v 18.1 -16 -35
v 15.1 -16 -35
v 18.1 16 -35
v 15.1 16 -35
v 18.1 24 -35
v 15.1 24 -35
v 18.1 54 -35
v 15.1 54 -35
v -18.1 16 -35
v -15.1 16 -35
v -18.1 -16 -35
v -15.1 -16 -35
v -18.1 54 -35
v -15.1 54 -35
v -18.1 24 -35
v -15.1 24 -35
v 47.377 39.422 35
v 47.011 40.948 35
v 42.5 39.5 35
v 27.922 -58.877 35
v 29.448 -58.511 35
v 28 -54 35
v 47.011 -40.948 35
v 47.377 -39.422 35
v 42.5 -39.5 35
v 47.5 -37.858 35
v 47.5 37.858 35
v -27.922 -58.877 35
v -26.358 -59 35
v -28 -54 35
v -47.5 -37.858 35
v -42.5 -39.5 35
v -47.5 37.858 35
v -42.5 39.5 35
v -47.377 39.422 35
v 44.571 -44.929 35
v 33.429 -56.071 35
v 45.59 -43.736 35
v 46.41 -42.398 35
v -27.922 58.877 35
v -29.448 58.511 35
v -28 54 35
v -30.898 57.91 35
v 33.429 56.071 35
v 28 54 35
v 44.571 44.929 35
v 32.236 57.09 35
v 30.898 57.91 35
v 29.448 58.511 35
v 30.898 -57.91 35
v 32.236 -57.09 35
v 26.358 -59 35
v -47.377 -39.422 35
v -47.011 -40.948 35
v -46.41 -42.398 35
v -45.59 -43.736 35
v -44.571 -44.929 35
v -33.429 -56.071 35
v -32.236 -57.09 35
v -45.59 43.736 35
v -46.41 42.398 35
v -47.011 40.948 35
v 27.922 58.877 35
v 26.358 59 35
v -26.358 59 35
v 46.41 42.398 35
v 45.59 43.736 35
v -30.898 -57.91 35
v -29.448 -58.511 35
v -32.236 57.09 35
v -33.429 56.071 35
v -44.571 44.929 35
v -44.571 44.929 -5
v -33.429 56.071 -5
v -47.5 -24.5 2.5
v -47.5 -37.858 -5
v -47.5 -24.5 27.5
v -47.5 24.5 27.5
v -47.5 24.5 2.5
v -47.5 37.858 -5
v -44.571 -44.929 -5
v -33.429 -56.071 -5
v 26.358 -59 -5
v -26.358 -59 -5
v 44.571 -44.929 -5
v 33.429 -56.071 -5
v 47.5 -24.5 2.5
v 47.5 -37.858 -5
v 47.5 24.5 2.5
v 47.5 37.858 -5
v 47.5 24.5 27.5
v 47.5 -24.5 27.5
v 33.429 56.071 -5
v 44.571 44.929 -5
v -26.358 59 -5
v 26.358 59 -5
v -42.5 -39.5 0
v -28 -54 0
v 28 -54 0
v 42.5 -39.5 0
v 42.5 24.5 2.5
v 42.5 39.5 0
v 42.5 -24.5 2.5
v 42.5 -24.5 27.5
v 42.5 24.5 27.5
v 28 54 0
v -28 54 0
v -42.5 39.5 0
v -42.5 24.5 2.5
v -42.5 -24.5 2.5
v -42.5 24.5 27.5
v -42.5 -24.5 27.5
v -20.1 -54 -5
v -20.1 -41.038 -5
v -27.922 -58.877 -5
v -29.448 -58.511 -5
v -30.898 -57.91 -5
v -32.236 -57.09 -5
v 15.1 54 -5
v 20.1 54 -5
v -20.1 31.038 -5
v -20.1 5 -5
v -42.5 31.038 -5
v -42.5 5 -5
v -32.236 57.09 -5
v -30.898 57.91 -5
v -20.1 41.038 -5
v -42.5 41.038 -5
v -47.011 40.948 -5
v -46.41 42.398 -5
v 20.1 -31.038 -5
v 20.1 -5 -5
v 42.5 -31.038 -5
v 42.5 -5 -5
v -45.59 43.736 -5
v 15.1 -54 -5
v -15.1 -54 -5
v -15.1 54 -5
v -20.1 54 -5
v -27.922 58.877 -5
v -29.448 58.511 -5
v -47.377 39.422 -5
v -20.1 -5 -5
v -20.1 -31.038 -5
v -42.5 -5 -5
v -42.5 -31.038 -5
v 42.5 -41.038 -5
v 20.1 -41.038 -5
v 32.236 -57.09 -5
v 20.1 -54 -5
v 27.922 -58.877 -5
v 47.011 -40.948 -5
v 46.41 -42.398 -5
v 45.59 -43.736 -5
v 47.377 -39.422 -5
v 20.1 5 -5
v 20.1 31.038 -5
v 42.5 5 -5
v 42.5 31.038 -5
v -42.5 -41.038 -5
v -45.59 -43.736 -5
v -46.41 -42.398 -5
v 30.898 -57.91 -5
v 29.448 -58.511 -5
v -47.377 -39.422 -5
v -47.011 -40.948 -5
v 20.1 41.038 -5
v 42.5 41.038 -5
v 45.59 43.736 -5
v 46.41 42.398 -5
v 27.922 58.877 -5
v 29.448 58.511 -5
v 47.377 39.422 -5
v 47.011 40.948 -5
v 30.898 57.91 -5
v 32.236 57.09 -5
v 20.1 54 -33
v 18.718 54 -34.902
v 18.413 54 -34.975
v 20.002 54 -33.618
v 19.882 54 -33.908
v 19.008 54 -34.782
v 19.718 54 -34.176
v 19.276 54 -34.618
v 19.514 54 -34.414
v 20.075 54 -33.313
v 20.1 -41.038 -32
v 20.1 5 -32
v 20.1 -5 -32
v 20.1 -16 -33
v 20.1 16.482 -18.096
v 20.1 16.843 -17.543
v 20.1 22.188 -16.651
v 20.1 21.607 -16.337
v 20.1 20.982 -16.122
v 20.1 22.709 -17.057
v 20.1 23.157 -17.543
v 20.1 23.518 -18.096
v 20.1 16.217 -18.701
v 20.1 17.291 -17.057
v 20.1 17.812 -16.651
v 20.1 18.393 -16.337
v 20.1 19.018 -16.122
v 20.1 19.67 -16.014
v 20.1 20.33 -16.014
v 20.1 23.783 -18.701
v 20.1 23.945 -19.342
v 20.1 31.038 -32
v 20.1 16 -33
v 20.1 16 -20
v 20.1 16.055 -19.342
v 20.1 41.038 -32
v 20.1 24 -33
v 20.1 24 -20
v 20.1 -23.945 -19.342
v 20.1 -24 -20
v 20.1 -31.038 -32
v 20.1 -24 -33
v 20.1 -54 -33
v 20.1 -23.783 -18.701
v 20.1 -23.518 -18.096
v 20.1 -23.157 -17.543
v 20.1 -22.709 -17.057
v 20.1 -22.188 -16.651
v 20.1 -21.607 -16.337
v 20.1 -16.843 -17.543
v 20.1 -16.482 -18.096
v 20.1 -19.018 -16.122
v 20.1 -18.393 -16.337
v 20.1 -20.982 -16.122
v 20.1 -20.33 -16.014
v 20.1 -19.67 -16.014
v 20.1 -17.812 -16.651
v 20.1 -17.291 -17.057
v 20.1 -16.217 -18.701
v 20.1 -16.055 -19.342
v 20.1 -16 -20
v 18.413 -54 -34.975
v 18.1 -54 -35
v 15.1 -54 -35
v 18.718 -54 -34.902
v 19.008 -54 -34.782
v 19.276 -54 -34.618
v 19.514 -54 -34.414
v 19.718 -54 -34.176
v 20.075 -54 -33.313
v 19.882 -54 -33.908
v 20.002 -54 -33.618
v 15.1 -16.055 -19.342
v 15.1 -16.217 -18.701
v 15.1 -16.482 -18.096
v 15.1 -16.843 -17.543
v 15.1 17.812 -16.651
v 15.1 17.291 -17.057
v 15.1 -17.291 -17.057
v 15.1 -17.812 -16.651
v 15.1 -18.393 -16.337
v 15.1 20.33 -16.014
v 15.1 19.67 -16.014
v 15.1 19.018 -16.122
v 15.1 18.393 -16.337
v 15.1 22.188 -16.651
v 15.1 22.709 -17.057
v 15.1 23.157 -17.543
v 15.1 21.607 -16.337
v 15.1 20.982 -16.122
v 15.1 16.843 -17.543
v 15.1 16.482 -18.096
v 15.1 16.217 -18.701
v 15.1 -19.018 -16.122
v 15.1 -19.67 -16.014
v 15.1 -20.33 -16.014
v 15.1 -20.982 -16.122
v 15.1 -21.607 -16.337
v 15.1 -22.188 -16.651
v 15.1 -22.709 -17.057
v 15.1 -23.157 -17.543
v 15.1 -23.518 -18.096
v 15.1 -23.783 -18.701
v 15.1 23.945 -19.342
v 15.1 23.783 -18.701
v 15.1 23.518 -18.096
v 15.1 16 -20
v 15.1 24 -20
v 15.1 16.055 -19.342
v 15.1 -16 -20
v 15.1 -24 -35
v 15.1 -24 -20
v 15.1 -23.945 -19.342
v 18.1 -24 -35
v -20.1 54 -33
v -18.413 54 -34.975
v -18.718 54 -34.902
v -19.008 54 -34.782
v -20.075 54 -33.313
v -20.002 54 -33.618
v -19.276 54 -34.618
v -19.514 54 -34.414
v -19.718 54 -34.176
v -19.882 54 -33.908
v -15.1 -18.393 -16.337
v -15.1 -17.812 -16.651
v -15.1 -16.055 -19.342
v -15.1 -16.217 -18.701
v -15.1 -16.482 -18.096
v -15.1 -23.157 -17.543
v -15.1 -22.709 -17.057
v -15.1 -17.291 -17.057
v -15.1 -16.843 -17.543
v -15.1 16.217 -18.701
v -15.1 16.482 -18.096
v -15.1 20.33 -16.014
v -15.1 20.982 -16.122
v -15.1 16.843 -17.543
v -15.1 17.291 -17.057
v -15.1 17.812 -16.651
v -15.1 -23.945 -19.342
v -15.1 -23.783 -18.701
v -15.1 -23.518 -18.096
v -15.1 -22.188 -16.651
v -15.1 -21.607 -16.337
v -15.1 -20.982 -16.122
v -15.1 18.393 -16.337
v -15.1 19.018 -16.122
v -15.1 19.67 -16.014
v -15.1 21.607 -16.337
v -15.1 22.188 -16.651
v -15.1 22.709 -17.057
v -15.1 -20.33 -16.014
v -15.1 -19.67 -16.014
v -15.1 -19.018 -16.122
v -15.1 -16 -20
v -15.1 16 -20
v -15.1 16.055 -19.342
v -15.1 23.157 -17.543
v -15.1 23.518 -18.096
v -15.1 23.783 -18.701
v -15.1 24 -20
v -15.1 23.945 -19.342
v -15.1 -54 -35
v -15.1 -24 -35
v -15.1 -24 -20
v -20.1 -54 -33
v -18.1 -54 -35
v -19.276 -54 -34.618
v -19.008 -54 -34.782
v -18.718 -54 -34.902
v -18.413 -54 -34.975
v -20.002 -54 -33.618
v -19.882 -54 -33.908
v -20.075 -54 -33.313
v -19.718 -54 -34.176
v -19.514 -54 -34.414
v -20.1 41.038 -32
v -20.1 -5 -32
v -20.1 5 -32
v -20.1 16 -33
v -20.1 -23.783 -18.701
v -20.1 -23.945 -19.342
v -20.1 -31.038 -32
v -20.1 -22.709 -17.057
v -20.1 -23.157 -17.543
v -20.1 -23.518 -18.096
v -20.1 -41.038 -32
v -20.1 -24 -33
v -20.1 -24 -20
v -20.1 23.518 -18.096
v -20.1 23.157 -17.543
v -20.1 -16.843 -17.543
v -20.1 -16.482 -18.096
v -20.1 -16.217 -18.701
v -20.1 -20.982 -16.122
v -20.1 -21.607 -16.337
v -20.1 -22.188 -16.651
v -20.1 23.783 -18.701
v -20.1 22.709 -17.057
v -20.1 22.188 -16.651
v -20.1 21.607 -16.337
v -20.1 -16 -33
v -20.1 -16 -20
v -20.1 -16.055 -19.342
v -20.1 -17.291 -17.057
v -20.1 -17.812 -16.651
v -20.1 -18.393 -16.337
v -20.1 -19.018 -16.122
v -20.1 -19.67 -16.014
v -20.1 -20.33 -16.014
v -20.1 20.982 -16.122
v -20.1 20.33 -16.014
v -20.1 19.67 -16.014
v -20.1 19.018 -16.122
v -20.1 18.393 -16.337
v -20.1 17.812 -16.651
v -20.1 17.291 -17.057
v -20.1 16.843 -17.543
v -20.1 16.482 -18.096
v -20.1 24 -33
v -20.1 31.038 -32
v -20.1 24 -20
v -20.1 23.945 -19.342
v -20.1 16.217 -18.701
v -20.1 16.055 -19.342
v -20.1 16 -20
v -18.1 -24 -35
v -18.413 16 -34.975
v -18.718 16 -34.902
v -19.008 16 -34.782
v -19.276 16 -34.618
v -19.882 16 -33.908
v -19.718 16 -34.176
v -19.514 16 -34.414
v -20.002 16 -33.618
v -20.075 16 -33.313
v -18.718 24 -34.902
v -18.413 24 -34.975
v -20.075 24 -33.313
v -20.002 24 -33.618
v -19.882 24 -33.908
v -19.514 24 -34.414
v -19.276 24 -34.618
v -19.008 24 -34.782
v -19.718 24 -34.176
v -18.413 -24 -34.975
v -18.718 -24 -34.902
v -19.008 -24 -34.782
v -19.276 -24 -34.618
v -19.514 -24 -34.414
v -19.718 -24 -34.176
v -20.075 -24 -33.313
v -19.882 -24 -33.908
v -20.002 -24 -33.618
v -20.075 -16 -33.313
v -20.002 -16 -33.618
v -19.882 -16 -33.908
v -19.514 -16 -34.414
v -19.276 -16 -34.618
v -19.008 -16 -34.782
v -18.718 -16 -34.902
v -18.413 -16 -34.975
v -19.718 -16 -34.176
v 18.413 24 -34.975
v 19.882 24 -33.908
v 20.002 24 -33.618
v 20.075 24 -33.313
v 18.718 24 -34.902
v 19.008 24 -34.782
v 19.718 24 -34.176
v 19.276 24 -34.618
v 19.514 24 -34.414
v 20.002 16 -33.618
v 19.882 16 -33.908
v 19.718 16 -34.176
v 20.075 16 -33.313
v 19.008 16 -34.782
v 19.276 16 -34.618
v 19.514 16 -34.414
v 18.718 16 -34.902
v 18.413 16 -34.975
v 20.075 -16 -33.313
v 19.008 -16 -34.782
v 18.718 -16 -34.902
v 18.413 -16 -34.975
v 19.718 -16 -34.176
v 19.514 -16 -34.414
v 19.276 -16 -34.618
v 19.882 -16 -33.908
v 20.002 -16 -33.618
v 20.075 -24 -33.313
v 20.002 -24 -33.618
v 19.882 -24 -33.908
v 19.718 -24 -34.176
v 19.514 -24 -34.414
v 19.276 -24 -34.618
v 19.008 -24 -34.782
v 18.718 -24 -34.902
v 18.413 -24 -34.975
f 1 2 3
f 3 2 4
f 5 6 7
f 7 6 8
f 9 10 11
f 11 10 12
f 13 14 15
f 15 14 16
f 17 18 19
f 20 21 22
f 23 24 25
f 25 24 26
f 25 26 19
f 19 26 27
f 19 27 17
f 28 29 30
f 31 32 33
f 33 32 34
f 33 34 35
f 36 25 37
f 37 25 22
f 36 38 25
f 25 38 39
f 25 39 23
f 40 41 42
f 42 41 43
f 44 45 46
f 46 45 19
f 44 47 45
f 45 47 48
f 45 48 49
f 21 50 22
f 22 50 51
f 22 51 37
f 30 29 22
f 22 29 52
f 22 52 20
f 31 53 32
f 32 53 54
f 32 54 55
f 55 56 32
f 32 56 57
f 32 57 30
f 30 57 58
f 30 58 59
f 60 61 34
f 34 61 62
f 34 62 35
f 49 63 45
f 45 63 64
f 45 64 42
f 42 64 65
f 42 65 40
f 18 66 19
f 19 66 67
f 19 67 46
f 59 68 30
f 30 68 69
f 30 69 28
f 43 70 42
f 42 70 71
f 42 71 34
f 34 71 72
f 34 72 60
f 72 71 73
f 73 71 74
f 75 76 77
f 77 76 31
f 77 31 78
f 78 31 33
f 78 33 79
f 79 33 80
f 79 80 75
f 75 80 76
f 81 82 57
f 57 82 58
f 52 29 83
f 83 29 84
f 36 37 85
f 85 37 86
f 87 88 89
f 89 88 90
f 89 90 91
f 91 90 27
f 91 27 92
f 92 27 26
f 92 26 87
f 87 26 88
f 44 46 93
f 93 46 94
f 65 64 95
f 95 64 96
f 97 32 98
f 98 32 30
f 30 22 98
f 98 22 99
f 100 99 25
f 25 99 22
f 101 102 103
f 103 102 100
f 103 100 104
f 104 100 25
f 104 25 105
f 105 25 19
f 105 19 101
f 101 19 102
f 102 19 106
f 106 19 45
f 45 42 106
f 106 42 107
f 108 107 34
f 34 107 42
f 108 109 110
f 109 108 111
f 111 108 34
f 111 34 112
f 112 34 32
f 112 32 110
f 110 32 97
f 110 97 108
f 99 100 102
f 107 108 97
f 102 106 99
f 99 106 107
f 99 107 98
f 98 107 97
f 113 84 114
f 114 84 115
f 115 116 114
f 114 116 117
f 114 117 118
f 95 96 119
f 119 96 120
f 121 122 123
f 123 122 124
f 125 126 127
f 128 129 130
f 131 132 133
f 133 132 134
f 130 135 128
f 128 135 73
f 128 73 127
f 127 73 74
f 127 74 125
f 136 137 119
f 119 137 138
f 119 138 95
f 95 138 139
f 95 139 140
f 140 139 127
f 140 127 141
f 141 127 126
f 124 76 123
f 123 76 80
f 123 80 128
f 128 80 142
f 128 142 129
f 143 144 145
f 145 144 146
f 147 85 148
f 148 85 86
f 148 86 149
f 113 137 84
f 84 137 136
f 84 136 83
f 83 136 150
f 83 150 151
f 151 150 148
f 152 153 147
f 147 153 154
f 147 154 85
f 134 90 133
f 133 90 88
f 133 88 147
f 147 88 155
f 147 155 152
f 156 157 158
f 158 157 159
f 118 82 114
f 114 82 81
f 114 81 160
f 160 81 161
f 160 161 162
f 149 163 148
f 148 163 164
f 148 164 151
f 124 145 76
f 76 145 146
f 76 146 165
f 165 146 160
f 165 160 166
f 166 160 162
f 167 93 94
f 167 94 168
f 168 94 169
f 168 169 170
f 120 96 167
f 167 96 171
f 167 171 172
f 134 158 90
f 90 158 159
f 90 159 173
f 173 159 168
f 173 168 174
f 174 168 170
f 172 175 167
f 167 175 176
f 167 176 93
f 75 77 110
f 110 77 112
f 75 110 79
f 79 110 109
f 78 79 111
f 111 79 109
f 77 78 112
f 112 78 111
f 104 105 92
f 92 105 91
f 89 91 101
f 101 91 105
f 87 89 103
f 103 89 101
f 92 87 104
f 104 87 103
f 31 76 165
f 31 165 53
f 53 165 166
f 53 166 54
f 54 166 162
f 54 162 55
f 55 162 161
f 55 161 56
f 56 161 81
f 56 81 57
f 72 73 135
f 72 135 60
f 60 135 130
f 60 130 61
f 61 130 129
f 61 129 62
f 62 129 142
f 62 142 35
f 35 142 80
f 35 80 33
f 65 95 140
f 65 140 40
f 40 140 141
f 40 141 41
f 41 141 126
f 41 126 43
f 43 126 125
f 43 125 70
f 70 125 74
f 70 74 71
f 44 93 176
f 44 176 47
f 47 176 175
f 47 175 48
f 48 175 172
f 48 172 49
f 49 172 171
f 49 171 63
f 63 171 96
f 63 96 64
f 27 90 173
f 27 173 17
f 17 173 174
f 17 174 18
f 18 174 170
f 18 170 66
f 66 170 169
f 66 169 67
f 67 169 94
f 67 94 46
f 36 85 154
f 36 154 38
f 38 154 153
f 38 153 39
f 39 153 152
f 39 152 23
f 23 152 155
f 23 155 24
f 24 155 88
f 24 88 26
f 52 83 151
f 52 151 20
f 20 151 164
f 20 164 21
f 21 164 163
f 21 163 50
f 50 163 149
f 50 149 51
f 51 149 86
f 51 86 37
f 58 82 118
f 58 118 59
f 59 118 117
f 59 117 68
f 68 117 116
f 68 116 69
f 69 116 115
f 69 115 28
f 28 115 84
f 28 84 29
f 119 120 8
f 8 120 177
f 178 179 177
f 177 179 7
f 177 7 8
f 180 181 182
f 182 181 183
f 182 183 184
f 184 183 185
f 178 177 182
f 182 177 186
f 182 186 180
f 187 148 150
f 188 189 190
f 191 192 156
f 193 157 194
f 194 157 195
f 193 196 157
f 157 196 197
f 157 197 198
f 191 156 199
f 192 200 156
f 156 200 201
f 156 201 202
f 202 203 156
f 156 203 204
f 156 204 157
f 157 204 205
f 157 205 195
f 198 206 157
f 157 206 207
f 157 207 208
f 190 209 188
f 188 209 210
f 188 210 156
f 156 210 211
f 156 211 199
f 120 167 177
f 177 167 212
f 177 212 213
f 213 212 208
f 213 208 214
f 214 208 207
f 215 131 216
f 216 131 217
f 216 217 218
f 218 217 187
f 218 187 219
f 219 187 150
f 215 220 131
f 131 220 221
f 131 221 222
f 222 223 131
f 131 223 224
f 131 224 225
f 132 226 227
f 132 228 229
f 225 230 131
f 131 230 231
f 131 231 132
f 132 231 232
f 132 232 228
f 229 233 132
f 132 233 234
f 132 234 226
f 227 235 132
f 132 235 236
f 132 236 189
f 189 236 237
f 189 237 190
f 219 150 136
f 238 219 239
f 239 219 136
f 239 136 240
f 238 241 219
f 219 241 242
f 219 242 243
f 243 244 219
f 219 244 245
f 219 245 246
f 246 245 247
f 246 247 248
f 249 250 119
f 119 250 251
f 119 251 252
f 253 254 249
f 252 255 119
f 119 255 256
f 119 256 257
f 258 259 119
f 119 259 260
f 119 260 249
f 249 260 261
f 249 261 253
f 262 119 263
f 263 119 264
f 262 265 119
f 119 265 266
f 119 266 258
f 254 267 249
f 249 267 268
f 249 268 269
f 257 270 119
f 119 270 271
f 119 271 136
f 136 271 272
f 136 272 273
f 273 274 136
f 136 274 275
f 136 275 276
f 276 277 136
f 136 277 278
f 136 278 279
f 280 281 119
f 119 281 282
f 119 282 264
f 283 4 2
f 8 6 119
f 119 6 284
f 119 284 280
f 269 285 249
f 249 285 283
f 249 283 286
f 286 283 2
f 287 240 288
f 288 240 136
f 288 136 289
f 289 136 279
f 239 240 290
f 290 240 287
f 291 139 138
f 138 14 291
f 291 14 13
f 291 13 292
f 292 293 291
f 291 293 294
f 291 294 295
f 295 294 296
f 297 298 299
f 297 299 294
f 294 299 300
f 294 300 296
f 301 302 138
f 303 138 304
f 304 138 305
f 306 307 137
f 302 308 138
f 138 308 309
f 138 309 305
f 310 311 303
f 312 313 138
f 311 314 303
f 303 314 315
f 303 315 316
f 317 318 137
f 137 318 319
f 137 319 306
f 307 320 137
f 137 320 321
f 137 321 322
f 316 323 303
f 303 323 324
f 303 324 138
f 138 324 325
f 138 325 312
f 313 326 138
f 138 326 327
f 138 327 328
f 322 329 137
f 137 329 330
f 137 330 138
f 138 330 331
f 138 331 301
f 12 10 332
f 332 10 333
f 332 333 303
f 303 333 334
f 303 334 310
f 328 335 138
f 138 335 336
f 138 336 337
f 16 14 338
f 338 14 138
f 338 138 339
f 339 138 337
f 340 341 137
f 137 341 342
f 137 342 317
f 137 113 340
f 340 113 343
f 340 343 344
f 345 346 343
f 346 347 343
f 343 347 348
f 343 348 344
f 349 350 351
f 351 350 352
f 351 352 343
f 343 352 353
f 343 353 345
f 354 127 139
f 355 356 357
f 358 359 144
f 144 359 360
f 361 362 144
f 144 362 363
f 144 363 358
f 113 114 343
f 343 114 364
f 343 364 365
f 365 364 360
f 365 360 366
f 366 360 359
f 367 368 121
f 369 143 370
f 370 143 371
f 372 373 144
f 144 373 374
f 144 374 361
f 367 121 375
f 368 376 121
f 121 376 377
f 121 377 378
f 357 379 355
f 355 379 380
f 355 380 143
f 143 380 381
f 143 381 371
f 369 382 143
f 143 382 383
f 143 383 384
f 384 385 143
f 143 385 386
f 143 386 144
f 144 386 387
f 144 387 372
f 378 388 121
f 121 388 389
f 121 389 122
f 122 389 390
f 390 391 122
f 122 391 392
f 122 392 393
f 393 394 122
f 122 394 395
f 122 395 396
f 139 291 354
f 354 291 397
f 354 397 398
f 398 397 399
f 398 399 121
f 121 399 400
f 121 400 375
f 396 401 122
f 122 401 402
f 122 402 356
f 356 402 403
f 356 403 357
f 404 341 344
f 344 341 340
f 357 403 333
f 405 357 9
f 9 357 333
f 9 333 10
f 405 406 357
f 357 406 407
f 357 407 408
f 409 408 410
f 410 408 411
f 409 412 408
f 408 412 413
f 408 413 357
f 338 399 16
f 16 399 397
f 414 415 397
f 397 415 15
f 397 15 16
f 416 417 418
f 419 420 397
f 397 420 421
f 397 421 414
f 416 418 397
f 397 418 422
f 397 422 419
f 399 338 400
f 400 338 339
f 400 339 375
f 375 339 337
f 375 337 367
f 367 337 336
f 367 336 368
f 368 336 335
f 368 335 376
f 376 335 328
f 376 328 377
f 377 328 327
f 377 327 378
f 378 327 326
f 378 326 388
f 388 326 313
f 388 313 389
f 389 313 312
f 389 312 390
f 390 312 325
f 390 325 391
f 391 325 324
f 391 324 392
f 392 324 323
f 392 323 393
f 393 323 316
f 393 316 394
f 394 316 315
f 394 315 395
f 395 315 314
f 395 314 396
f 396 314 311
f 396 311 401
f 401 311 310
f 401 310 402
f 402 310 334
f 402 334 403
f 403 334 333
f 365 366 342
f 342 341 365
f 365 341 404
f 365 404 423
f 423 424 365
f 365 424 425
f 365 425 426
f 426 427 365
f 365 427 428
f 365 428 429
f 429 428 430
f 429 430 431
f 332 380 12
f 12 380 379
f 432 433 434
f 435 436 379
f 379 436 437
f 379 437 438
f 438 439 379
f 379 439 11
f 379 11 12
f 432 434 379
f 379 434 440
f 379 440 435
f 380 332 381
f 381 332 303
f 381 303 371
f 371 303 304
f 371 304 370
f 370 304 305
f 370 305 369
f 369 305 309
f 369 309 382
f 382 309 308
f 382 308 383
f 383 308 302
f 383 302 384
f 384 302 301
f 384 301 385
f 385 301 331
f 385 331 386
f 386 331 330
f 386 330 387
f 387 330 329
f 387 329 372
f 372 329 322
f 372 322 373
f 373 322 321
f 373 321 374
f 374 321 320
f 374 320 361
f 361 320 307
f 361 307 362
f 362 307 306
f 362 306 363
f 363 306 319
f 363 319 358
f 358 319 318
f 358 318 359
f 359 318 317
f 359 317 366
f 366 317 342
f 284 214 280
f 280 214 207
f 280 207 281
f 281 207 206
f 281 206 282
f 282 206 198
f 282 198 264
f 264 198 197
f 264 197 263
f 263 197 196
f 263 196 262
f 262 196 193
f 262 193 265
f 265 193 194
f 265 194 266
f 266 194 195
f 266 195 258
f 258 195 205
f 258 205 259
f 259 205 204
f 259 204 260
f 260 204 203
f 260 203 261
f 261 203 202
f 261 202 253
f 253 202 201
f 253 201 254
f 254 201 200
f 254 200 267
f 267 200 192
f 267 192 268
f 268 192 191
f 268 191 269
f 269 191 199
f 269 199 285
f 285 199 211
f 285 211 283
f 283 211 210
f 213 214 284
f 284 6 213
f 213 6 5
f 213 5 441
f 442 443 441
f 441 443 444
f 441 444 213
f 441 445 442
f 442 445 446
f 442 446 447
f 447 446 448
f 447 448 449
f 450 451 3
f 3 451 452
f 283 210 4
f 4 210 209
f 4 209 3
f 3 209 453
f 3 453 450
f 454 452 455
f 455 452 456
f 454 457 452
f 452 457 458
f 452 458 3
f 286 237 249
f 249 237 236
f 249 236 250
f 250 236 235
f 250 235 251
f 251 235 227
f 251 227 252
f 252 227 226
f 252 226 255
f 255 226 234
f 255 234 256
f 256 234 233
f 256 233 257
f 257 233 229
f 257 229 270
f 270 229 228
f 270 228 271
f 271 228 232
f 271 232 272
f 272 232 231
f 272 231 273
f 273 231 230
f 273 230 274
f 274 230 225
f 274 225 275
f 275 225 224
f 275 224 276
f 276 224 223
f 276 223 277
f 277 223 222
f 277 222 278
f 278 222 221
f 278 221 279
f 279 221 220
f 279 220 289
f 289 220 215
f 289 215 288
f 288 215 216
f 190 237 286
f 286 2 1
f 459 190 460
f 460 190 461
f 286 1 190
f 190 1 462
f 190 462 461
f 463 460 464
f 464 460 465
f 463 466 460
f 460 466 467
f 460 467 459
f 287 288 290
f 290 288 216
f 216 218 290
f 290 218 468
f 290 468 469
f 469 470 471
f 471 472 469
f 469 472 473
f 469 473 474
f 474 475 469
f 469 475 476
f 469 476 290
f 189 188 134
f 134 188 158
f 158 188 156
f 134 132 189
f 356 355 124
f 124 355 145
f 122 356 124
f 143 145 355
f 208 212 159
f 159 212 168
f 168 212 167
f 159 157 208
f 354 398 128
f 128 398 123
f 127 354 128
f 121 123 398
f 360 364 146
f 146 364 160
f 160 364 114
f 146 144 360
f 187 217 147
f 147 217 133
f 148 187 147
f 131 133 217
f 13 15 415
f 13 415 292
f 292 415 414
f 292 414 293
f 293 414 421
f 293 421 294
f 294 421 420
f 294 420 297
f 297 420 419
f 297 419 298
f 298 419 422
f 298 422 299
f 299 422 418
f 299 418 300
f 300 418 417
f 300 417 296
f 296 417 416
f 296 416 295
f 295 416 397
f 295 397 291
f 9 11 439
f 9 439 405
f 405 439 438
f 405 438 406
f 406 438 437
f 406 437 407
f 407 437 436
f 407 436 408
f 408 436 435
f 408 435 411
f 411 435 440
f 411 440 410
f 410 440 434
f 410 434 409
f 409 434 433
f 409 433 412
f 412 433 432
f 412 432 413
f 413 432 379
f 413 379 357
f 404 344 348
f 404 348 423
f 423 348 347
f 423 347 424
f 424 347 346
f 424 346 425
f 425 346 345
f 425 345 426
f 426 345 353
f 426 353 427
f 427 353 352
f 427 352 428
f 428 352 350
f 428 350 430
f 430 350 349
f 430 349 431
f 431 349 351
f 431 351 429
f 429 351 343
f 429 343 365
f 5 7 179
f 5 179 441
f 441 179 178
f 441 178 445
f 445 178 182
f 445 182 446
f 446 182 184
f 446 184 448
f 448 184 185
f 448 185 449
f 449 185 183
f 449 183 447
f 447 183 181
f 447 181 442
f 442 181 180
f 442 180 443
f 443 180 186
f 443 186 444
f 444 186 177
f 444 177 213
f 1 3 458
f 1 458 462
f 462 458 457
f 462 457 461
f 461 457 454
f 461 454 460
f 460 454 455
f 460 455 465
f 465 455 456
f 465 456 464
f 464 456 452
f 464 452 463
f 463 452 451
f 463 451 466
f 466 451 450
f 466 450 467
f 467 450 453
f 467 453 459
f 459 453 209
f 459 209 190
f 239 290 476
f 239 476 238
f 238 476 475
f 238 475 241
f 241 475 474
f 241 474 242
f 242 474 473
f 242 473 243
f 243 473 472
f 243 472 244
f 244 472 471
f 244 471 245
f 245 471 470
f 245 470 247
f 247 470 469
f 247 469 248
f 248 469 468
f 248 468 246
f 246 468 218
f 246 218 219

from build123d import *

# Parameters (mm, degrees)
EXTRUDE_2_DEPTH          = 35
EXTRUDE_3_DEPTH          = 5
CUT_EXTRUDE_1_DEPTH      = 84.440098274
CUT_EXTRUDE_1_DEPTH_BACK = 84.440098274
FILLET_1_R               = 10
SKETCH_3_W               = 5
SKETCH_3_H               = 108
EXTRUDE_4_DEPTH          = 35
CUT_EXTRUDE_2_DEPTH      = 84.440098274
CUT_EXTRUDE_2_DEPTH_BACK = 84.440098274
RIB_5_REACH              = 85.44
SKETCH_5_WALL_W          = 203.962385762
SKETCH_5_WALL_H          = 10
RIB_6_REACH              = 113.863
SKETCH_8_WALL_W          = 260.809051254
SKETCH_8_WALL_H          = 10
MIRROR_3_COPY_1_REACH    = 113.863
MIRROR_3_COPY_1_SKETCH_W = 260.809051254
MIRROR_3_COPY_1_SKETCH_H = 10
MIRROR_3_COPY_2_REACH    = 113.863
MIRROR_3_COPY_2_SKETCH_W = 260.809051254
MIRROR_3_COPY_2_SKETCH_H = 10
FILLET_2_R               = 2


with BuildPart() as part:
    # 스케치1 → 보스-돌출2 (new body)
    with BuildSketch(Plane.XY):
        Polygon((-47.5, 42), (-47.5, -42), (-30.5, -59), (30.5, -59), (47.5, -42), (47.5, 42), (30.5, 59), (-30.5, 59), align=None)
        Polygon((-42.5, 39.5), (-42.5, -39.5), (-28, -54), (28, -54), (42.5, -39.5), (42.5, 39.5), (28, 54), (-28, 54), align=None, mode=Mode.SUBTRACT)
    extrude(amount=EXTRUDE_2_DEPTH)

    # 스케치1<2> → 보스-돌출3 (add)
    with BuildSketch(Plane.XY):
        Polygon((-30.5, 59), (-47.5, 42), (-47.5, -42), (-30.5, -59), (30.5, -59), (47.5, -42), (47.5, 42), (30.5, 59), align=None)
    extrude(amount=-EXTRUDE_3_DEPTH)

    # 스케치2 → 컷-돌출1 (cut, two sides: drawn at the far end of the back side and taken through both)
    with BuildSketch(Plane(origin=(0, 0, 0), x_dir=(0, 0, -1), z_dir=(1, 0, 0)).offset(-CUT_EXTRUDE_1_DEPTH_BACK)):
        Polygon((-27.5, -24.5), (-7.5, -24.5), (-2.5, -24.5), (-2.5, 24.5), (-7.5, 24.5), (-27.5, 24.5), align=None)
    extrude(amount=CUT_EXTRUDE_1_DEPTH + CUT_EXTRUDE_1_DEPTH_BACK, mode=Mode.SUBTRACT)

    # 필렛1
    fillet_1_edges = [part.edges().sort_by_distance(p)[0] for p in [
        (-47.5, -42, 15),
        (-47.5, 42, 15),
        (-30.5, 59, 15),
        (30.5, 59, 15),
        (47.5, 42, 15),
        (47.5, -42, 15),
        (30.5, -59, 15),
        (-30.5, -59, 15),
    ]]
    fillet(fillet_1_edges, radius=FILLET_1_R)

    # 스케치3 → 보스-돌출4 (add)
    with BuildSketch(Plane.XY):
        with Locations((17.6, 0)):
            Rectangle(SKETCH_3_W, SKETCH_3_H)
        with Locations((-17.6, 0)):
            Rectangle(SKETCH_3_W, SKETCH_3_H)
    extrude(amount=-EXTRUDE_4_DEPTH)

    # 스케치4 → 컷-돌출2 (cut, two sides: drawn at the far end of the back side and taken through both)
    with BuildSketch(Plane(origin=(0, 0, 0), x_dir=(0, 0, -1), z_dir=(1, 0, 0)).offset(-CUT_EXTRUDE_2_DEPTH_BACK)):
        with BuildLine():
            Line((20, 16), (35, 16))
            Line((35, 16), (35, 24))
            Line((35, 24), (20, 24))
            ThreePointArc((20, 24), (16, 20), (20, 16))
        make_face()
        with BuildLine():
            Line((35, -16), (35, -24))
            Line((35, -24), (20, -24))
            ThreePointArc((20, -24), (16, -20), (20, -16))
            Line((20, -16), (35, -16))
        make_face()
    extrude(amount=CUT_EXTRUDE_2_DEPTH + CUT_EXTRUDE_2_DEPTH_BACK, mode=Mode.SUBTRACT)

    # 스케치5 wall → 보강대5 (add, up to next)
    with BuildSketch(Plane(origin=(31.3, 0, -18.5), x_dir=(-0.638500632437, 0, -0.769621298027), z_dir=(-0.769621298027, 0, 0.638500632437)), mode=Mode.PRIVATE) as rib_5_sk1:
        Rectangle(SKETCH_5_WALL_W, SKETCH_5_WALL_H)
    rib_5_tool1 = extrude(rib_5_sk1.sketch, amount=RIB_5_REACH, mode=Mode.PRIVATE) - part.part
    rib_5 = rib_5_tool1.solids().sort_by_distance((31.3, 0, -18.5))[0]
    add(rib_5)

    # 대칭 복사1: 보강대5 across plane
    add(rib_5.mirror(Plane(origin=(0, 0, 0), x_dir=(0, 0, 1), z_dir=(1, 0, 0))))

    # 스케치8 wall → 보강대6 (add, up to next)
    with BuildSketch(Plane(origin=(31.3, 36.037767227, -18.5), x_dir=(-0.638500632437, 0, -0.769621298027), z_dir=(-0.769621298027, 0, 0.638500632437)), mode=Mode.PRIVATE) as rib_6_sk1:
        Rectangle(SKETCH_8_WALL_W, SKETCH_8_WALL_H)
    rib_6_tool1 = extrude(rib_6_sk1.sketch, amount=RIB_6_REACH, mode=Mode.PRIVATE) - part.part
    rib_6 = rib_6_tool1.solids().sort_by_distance((31.3, 36.037767227, -18.5))[0]
    add(rib_6)

    # 대칭 복사2: 보강대6 across plane
    add(rib_6.mirror(Plane(origin=(0, 0, 0), x_dir=(0, 0, 1), z_dir=(1, 0, 0))))

    # 대칭 복사3 copy 1 sketch → 대칭 복사3 copy 1 (add, up to next)
    with BuildSketch(Plane(origin=(-31.3, -36.037767227, -18.5), x_dir=(0.638500632437, 0, -0.769621298027), z_dir=(0.769621298027, 0, 0.638500632437)), mode=Mode.PRIVATE) as mirror_3_copy_1_sk1:
        Rectangle(MIRROR_3_COPY_1_SKETCH_W, MIRROR_3_COPY_1_SKETCH_H)
    mirror_3_copy_1_tool1 = extrude(mirror_3_copy_1_sk1.sketch, amount=MIRROR_3_COPY_1_REACH, mode=Mode.PRIVATE) - part.part
    add(mirror_3_copy_1_tool1.solids().sort_by_distance((-31.3, -36.037767227, -18.5))[0])

    # 대칭 복사3 copy 2 sketch → 대칭 복사3 copy 2 (add, up to next)
    with BuildSketch(Plane(origin=(31.3, -36.037767227, -18.5), x_dir=(-0.638500632437, 0, -0.769621298027), z_dir=(-0.769621298027, 0, 0.638500632437)), mode=Mode.PRIVATE) as mirror_3_copy_2_sk1:
        Rectangle(MIRROR_3_COPY_2_SKETCH_W, MIRROR_3_COPY_2_SKETCH_H)
    mirror_3_copy_2_tool1 = extrude(mirror_3_copy_2_sk1.sketch, amount=MIRROR_3_COPY_2_REACH, mode=Mode.PRIVATE) - part.part
    add(mirror_3_copy_2_tool1.solids().sort_by_distance((31.3, -36.037767227, -18.5))[0])

    # 필렛2
    fillet_2_edges = [part.edges().sort_by_distance(p)[0] for p in [
        (-20.1, 39, -35),
        (-20.1, 0, -35),
        (-20.1, -39, -35),
        (20.1, 39, -35),
        (20.1, 0, -35),
        (20.1, -39, -35),
    ]]
    fillet(fillet_2_edges, radius=FILLET_2_R)


solid = part.part
